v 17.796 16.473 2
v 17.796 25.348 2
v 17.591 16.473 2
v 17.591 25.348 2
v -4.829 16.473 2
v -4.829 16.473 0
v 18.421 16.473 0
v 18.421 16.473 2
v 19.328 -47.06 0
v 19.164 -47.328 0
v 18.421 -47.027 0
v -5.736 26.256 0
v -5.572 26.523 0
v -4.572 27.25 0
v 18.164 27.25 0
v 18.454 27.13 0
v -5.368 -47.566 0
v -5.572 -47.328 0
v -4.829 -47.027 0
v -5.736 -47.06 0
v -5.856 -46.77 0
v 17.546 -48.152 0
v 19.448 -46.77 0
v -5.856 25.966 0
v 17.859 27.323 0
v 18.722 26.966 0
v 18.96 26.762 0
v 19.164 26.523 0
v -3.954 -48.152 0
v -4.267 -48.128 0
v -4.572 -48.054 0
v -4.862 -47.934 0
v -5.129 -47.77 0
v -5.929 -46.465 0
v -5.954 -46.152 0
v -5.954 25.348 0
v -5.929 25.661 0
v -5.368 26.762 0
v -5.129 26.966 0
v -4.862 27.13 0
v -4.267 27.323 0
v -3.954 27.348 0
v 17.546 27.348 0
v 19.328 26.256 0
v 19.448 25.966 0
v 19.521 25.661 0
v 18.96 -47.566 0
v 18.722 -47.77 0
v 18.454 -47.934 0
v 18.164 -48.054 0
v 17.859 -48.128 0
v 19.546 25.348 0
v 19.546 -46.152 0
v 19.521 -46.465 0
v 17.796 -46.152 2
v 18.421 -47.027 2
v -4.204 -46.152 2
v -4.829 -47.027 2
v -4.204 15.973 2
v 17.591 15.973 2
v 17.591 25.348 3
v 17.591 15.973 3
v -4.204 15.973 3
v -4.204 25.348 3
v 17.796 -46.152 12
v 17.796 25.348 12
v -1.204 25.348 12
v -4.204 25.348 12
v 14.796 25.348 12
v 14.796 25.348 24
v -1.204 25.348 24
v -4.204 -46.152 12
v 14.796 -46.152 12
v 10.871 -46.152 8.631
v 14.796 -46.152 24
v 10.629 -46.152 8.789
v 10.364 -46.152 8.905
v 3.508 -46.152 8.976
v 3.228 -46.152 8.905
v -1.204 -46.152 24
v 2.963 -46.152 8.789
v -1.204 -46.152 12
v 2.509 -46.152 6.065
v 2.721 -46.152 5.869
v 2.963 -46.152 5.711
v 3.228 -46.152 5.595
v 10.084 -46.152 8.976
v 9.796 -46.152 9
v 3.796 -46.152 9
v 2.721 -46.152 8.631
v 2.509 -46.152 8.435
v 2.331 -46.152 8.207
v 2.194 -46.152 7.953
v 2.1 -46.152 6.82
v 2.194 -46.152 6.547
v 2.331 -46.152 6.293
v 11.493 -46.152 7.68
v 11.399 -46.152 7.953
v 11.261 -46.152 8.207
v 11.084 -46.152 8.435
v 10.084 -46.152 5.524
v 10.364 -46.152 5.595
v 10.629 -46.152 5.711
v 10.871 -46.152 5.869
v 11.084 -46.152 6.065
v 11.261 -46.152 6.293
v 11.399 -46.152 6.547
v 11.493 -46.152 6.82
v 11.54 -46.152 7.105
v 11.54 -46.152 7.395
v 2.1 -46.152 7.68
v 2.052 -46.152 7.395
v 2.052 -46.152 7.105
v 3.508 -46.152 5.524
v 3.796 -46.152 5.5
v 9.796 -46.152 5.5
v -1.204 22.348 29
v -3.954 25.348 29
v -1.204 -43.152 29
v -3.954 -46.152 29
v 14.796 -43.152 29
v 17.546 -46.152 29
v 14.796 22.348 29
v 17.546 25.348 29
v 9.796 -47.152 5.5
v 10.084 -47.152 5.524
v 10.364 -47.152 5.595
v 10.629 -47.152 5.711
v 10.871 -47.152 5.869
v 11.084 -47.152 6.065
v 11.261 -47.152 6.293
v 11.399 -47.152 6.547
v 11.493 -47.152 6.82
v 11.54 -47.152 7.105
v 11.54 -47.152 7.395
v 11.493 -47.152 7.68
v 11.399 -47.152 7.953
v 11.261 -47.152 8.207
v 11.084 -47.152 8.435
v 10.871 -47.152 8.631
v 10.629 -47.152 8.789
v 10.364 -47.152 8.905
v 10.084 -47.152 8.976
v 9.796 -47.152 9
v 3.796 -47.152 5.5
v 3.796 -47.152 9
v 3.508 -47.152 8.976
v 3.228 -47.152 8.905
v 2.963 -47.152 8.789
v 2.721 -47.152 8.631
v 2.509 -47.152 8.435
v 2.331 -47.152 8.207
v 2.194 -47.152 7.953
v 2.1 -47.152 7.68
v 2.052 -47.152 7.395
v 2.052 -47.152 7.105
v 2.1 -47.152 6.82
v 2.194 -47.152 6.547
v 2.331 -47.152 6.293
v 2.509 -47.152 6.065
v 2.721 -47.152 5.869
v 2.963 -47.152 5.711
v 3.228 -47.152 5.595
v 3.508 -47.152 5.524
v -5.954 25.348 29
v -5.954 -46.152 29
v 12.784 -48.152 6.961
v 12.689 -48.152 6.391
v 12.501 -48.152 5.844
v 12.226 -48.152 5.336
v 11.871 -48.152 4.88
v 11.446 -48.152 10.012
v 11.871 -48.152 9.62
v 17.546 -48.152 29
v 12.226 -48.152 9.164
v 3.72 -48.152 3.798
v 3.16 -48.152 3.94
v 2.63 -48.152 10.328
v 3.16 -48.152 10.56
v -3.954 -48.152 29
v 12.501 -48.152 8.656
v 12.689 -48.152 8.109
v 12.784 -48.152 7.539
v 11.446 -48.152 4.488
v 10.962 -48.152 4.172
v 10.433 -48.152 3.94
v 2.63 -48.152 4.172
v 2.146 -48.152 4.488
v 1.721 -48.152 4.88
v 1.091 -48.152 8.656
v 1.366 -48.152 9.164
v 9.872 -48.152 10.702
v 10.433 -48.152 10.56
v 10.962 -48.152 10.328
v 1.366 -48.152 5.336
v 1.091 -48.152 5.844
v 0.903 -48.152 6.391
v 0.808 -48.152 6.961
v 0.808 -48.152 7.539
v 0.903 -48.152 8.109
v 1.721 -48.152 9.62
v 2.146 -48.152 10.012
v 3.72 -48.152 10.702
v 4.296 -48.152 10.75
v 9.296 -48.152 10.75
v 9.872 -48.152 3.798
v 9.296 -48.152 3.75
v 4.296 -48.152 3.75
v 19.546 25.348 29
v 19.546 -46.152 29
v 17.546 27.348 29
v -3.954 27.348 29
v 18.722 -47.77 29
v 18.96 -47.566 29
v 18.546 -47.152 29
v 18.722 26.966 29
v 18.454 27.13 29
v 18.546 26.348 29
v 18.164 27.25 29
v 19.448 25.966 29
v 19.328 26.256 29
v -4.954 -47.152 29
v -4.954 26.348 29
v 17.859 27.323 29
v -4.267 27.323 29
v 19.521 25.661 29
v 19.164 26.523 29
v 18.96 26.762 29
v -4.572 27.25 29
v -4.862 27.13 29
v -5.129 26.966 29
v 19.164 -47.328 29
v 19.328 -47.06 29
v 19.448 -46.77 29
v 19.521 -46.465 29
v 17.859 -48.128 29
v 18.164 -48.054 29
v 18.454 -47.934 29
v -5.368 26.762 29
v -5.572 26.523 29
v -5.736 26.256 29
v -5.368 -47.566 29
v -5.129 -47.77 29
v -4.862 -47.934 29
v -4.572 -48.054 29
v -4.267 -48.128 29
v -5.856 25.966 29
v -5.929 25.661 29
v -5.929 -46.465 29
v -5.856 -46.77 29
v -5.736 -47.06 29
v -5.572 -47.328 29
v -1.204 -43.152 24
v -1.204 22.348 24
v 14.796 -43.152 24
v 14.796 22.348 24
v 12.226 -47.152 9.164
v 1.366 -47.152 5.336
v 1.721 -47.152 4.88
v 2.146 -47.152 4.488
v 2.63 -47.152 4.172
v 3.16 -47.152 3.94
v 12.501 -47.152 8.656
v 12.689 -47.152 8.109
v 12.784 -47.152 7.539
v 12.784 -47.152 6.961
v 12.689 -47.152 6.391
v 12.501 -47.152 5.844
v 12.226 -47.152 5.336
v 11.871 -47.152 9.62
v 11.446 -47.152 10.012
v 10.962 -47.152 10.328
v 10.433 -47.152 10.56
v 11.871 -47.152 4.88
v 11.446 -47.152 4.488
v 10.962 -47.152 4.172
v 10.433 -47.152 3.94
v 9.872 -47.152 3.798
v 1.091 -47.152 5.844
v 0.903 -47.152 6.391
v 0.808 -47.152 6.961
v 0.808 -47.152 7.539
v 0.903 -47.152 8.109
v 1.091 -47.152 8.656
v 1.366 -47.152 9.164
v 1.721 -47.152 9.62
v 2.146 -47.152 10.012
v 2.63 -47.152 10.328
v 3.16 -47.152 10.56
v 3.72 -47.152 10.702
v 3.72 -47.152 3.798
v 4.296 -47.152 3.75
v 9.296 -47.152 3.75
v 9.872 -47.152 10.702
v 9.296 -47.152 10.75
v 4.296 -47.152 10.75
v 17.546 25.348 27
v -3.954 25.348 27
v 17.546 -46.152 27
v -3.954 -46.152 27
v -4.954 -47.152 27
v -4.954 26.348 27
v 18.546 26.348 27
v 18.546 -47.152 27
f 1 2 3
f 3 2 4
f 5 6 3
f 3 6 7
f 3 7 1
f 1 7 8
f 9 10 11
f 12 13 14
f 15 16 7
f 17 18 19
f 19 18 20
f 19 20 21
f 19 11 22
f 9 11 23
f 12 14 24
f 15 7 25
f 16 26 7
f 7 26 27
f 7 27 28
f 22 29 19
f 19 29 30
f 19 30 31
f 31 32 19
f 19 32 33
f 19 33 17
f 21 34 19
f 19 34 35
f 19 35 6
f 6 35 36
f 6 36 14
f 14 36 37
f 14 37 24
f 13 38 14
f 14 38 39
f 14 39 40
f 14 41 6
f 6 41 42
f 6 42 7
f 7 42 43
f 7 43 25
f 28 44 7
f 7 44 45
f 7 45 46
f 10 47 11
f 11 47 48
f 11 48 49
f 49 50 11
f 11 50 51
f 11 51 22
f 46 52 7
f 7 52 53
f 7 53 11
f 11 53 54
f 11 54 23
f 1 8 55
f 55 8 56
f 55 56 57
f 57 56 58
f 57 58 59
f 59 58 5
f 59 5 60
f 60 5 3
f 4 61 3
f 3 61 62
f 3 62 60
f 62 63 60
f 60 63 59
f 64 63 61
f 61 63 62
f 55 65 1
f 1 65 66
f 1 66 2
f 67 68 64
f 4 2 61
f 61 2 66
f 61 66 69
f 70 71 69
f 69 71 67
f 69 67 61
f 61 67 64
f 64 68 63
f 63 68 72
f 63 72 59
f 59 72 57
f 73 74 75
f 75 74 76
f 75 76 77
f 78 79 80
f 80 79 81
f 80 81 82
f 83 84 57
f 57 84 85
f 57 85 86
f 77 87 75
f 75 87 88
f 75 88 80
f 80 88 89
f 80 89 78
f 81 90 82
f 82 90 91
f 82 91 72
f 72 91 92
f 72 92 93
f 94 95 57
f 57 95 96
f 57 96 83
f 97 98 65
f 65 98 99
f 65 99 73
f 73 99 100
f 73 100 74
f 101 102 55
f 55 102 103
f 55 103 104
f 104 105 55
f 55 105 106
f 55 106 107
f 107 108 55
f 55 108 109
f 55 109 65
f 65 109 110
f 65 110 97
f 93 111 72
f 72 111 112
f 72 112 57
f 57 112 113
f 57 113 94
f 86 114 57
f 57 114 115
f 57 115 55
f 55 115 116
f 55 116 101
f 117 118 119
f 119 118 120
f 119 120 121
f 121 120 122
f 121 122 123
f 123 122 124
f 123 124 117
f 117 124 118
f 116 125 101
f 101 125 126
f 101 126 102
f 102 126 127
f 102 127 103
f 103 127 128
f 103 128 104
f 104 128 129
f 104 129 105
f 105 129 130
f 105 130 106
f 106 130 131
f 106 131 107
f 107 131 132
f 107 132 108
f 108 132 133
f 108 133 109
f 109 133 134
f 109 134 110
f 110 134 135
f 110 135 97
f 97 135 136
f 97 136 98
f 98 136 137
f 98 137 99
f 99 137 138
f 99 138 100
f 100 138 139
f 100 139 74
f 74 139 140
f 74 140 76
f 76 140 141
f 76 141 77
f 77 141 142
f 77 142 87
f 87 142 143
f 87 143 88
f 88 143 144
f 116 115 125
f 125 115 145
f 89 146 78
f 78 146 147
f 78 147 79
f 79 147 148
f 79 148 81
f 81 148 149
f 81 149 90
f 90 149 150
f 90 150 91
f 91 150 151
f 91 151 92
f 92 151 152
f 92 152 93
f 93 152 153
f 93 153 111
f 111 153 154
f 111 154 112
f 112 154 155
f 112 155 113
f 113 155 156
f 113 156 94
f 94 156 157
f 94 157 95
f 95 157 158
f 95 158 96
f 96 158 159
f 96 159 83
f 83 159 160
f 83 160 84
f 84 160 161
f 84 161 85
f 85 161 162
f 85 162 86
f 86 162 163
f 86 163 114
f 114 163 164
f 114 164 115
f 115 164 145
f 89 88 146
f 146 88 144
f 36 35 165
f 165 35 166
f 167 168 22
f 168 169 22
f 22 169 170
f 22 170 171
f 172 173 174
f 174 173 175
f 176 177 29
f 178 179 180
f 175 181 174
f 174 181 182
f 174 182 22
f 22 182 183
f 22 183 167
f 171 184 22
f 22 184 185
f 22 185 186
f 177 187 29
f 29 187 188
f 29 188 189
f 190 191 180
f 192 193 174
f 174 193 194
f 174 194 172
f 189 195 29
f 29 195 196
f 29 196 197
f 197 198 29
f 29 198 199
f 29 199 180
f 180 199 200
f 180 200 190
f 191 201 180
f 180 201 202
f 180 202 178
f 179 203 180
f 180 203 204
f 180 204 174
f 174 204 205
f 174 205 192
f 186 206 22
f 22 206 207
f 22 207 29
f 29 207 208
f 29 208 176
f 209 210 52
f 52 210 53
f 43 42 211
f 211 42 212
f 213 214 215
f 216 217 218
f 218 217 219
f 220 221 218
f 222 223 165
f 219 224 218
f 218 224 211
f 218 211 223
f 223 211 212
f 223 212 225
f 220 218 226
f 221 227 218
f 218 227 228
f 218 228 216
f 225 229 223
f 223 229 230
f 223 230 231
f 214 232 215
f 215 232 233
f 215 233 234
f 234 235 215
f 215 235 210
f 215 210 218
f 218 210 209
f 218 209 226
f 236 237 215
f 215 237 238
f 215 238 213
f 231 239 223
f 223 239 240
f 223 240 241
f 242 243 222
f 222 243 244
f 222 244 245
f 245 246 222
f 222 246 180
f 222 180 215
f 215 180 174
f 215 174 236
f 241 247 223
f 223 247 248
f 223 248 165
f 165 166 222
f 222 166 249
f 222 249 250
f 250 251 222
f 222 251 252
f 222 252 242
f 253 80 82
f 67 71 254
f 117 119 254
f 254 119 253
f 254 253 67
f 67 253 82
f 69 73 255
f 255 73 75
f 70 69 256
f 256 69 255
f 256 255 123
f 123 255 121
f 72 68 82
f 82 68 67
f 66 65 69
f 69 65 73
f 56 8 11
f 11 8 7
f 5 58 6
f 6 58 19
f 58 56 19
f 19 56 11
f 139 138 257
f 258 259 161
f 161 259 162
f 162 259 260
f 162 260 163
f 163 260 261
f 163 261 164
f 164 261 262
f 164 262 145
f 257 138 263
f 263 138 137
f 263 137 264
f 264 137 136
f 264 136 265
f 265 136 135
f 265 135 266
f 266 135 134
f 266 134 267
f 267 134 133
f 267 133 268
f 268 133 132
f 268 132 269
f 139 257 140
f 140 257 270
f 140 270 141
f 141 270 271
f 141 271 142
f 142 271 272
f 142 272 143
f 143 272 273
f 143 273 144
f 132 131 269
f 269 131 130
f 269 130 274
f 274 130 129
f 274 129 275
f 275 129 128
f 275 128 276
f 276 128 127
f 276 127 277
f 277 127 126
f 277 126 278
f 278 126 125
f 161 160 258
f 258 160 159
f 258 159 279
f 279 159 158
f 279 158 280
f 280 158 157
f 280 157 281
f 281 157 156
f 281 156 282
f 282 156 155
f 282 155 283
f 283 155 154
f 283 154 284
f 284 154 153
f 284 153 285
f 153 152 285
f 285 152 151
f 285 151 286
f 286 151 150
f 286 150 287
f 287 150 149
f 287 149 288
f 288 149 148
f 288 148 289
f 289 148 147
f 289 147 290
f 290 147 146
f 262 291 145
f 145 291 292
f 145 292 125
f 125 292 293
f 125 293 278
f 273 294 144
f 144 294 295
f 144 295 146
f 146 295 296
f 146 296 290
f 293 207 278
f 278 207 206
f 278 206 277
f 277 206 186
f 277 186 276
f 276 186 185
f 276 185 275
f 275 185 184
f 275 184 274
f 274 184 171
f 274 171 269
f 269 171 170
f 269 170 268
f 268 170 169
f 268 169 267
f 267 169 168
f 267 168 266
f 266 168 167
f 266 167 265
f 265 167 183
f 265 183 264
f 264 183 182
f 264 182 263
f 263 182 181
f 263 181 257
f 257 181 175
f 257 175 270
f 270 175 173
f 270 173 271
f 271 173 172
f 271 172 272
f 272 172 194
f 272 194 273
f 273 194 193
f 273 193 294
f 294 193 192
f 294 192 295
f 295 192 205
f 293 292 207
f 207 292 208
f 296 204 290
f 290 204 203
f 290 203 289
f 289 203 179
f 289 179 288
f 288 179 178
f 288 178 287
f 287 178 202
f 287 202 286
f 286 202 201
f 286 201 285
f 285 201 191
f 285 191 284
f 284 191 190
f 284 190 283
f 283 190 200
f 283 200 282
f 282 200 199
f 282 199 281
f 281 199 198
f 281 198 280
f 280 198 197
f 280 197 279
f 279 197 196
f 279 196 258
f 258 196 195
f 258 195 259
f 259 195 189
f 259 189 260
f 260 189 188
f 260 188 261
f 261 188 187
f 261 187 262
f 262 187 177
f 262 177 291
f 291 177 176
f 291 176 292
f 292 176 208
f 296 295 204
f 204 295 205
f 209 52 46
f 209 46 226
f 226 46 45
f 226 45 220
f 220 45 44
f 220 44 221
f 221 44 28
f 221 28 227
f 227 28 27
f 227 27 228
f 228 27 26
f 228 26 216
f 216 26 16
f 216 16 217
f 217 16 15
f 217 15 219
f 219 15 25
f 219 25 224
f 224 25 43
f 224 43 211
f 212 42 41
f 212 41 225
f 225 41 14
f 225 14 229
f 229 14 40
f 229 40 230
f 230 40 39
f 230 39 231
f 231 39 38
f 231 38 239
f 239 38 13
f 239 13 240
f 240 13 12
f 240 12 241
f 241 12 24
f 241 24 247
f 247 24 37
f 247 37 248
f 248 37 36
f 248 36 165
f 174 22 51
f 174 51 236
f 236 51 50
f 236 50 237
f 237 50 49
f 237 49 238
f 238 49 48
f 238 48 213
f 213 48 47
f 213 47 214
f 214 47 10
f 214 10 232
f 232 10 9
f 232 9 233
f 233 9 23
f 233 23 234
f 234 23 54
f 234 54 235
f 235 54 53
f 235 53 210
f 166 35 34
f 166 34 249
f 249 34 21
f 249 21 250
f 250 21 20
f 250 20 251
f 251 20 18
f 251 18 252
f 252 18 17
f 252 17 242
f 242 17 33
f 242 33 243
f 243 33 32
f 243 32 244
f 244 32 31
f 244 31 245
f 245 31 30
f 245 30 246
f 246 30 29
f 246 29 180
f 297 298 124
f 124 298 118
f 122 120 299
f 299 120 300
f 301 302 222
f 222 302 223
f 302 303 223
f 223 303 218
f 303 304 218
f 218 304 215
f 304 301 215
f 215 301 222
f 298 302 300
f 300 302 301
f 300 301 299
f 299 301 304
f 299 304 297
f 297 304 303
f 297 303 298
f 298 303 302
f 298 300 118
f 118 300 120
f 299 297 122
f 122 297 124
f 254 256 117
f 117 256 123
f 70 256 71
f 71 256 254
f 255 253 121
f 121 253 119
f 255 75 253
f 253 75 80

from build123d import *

# Parameters (mm, degrees)
SKETCH1_W                  = 25.5
SKETCH1_H                  = 75.5
MAIN_BODY_DEPTH            = 29
SKETCH2_W                  = 16
SKETCH2_H                  = 71.5
BATTERY_CUT_DEPTH          = 17
SKETCH3_W                  = 22
SKETCH3_H                  = 71.5
PCB_CUT_DEPTH              = 12
SKETCH4_W                  = 23.25
SKETCH4_H                  = 63.5
SOLAR_CUT_DEPTH            = 2
SKETCH5_W                  = 22
SKETCH5_H                  = 8.875
SOLAR_GAP_FILL_DEPTH       = 2
USB_CUT_DEPTH              = 2
USB_CLEARANCE_EMBOSS_DEPTH = 1
FILLET1_R                  = 2
SKETCH9_W                  = 23.5
SKETCH9_H                  = 73.5
SKETCH9_W_2                = 21.5
SKETCH9_H_2                = 71.5
CUT_EXTRUDE7_DEPTH         = 2
SKETCH10_W                 = 16
SKETCH10_H                 = 3
BOSS_EXTRUDE3_DEPTH        = 5
SKETCH11_W                 = 21.795239569
SKETCH11_H                 = 9.375
BOSS_EXTRUDE4_DEPTH        = 1


with BuildPart() as part:
    # Sketch1 → main body (new body)
    with BuildSketch(Plane.XY):
        with Locations((6.796111111, -10.402222222)):
            Rectangle(SKETCH1_W, SKETCH1_H)
    extrude(amount=MAIN_BODY_DEPTH)

    # Sketch2 → battery cut (cut)
    with BuildSketch(Plane.XY.offset(29)):
        with Locations((6.796111111, -10.402222222)):
            Rectangle(SKETCH2_W, SKETCH2_H)
    extrude(amount=-BATTERY_CUT_DEPTH, mode=Mode.SUBTRACT)

    # Sketch3 → pcb cut (cut)
    with BuildSketch(Plane(origin=(0, 0, 0), x_dir=(-1, 0, 0), z_dir=(0, 0, -1))):
        with Locations((-6.796111111, -10.402222222)):
            Rectangle(SKETCH3_W, SKETCH3_H)
    extrude(amount=-PCB_CUT_DEPTH, mode=Mode.SUBTRACT)

    # Sketch4 → solar cut (cut)
    with BuildSketch(Plane(origin=(0, 0, 0), x_dir=(-1, 0, 0), z_dir=(0, 0, -1))):
        with Locations((-6.796111111, -15.277222222)):
            Rectangle(SKETCH4_W, SKETCH4_H)
    extrude(amount=-SOLAR_CUT_DEPTH, mode=Mode.SUBTRACT)

    # Sketch6 → USB cut (cut)
    with BuildSketch(Plane.XZ.offset(48.152222222)):
        with BuildLine():
            Line((9.796111111, 5.5), (3.796111111, 5.5))
            ThreePointArc((3.796111111, 5.5), (2.046111111, 7.25), (3.796111111, 9))
            Line((3.796111111, 9), (9.796111111, 9))
            ThreePointArc((9.796111111, 9), (11.546111111, 7.25), (9.796111111, 5.5))
        make_face()
    extrude(amount=-USB_CUT_DEPTH, mode=Mode.SUBTRACT)

    # Sketch7 → USB clearance emboss (cut)
    with BuildSketch(Plane.XZ.offset(48.152222222)):
        with BuildLine():
            Line((9.296111111, 3.75), (4.296111111, 3.75))
            ThreePointArc((4.296111111, 3.75), (0.796111111, 7.25), (4.296111111, 10.75))
            Line((4.296111111, 10.75), (9.296111111, 10.75))
            ThreePointArc((9.296111111, 10.75), (12.796111111, 7.25), (9.296111111, 3.75))
        make_face()
    extrude(amount=-USB_CLEARANCE_EMBOSS_DEPTH, mode=Mode.SUBTRACT)

    # Fillet1
    fillet1_edges = [part.edges().sort_by_distance(p)[0] for p in [
        (-5.953888889, 27.347777778, 14.5),
        (19.546111111, 27.347777778, 14.5),
        (19.546111111, -48.152222222, 14.5),
        (-5.953888889, -48.152222222, 14.5),
    ]]
    fillet(fillet1_edges, radius=FILLET1_R)

    # Sketch9 → Cut-Extrude7 (cut)
    with BuildSketch(Plane.XY.offset(29)):
        with Locations((6.796111111, -10.402222222)):
            Rectangle(SKETCH9_W, SKETCH9_H)
        with Locations((6.796111111, -10.402222222)):
            Rectangle(SKETCH9_W_2, SKETCH9_H_2, mode=Mode.SUBTRACT)
    extrude(amount=-CUT_EXTRUDE7_DEPTH, mode=Mode.SUBTRACT)

    # Sketch10 → Boss-Extrude3 (add)
    with BuildSketch(Plane.XY.offset(29)):
        with Locations((6.796111111, 23.847777778)):
            Rectangle(SKETCH10_W, SKETCH10_H)
        with Locations((6.796111111, -44.652222222)):
            Rectangle(SKETCH10_W, SKETCH10_H)
    extrude(amount=-BOSS_EXTRUDE3_DEPTH)



with BuildPart() as body_2:
    # Sketch5 → solar gap fill (new body)
    with BuildSketch(Plane(origin=(0, 0, 0), x_dir=(-1, 0, 0), z_dir=(0, 0, -1))):
        with Locations((-6.796111111, 20.910277778)):
            Rectangle(SKETCH5_W, SKETCH5_H)
    extrude(amount=-SOLAR_GAP_FILL_DEPTH)


with BuildPart() as part_1:
    add(part.part)

    add(body_2.part)  # Boss-Extrude4 merges body 2
    # Sketch11 → Boss-Extrude4 (add)
    with BuildSketch(Plane.XY.offset(2)):
        with Locations((6.693730896, 20.660277778)):
            Rectangle(SKETCH11_W, SKETCH11_H)
    extrude(amount=BOSS_EXTRUDE4_DEPTH)


solid = part_1.part
